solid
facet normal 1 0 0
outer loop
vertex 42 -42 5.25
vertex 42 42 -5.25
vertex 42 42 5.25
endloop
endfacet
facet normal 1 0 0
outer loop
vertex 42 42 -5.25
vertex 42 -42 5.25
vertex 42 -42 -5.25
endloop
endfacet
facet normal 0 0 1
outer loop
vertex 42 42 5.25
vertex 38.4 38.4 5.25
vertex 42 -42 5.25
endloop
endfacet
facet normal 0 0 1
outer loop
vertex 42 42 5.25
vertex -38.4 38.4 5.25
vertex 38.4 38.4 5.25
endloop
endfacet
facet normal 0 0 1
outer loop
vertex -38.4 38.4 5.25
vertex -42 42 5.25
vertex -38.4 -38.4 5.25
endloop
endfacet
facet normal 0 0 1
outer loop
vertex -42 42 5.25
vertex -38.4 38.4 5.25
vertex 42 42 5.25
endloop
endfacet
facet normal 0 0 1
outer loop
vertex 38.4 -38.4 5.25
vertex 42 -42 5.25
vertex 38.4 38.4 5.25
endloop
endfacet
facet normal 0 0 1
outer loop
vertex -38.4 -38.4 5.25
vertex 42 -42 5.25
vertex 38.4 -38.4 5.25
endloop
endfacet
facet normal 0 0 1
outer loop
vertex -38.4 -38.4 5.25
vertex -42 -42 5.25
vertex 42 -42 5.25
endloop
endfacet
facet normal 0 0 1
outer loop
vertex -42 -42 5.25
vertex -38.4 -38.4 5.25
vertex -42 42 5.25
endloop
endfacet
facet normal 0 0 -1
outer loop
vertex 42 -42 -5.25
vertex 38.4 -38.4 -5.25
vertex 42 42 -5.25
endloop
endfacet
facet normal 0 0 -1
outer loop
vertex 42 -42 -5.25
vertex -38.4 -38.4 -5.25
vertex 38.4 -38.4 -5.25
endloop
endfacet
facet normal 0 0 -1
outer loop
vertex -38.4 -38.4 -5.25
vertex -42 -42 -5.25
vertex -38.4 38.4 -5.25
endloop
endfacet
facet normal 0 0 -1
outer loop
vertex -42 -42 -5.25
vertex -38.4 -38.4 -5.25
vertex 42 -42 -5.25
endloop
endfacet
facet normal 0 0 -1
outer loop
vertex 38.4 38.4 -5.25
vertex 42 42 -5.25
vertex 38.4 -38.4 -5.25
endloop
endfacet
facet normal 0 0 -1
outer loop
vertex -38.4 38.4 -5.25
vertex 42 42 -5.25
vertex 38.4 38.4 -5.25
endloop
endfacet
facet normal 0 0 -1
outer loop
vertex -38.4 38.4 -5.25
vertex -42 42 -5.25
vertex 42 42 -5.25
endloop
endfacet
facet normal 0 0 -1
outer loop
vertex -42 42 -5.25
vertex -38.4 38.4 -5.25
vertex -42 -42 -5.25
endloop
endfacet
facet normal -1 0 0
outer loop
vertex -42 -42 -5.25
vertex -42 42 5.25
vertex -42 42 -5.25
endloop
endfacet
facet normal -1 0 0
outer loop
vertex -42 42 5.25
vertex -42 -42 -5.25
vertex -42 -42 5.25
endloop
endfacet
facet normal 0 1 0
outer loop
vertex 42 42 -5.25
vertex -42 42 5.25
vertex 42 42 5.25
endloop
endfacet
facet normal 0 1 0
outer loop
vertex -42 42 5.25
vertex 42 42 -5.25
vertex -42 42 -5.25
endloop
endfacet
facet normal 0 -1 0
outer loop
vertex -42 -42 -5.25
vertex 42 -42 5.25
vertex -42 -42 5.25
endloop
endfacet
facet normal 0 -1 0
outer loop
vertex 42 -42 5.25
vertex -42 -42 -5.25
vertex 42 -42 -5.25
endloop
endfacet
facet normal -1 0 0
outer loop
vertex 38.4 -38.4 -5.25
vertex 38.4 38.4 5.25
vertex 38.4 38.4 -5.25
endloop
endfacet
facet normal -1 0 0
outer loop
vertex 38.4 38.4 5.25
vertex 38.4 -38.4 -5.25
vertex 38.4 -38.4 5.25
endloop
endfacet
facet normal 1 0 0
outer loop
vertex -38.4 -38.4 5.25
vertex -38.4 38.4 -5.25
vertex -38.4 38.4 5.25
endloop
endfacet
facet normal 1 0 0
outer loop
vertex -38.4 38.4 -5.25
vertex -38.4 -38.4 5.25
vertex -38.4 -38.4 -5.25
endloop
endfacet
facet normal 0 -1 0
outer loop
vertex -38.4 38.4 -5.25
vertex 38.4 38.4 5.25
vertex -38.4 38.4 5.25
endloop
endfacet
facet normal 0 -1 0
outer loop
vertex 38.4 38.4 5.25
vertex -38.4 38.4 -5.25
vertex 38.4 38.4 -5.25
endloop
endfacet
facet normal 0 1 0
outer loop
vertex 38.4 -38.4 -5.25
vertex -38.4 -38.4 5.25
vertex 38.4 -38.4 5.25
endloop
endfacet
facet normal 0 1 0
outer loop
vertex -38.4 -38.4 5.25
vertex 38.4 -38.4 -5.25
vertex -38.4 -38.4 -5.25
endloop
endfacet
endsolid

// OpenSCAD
translate([-42, -42, -5.25])
difference() {
    // Main body of the socket
    cube([84, 84, 10.5]);

    // Cutout for the inner part
    translate([3.6, 3.6, 0])
    cube([84 - 2 * 3.6, 84 - 2 * 3.6, 10.5]);

    // Screw holes
    translate([42 - 60.3 / 2, 42, -1])
    cylinder(h = 12, r = 2, $fn = 64);

    translate([42 + 60.3 / 2, 42, -1])
    cylinder(h = 12, r = 2, $fn = 64);
}
